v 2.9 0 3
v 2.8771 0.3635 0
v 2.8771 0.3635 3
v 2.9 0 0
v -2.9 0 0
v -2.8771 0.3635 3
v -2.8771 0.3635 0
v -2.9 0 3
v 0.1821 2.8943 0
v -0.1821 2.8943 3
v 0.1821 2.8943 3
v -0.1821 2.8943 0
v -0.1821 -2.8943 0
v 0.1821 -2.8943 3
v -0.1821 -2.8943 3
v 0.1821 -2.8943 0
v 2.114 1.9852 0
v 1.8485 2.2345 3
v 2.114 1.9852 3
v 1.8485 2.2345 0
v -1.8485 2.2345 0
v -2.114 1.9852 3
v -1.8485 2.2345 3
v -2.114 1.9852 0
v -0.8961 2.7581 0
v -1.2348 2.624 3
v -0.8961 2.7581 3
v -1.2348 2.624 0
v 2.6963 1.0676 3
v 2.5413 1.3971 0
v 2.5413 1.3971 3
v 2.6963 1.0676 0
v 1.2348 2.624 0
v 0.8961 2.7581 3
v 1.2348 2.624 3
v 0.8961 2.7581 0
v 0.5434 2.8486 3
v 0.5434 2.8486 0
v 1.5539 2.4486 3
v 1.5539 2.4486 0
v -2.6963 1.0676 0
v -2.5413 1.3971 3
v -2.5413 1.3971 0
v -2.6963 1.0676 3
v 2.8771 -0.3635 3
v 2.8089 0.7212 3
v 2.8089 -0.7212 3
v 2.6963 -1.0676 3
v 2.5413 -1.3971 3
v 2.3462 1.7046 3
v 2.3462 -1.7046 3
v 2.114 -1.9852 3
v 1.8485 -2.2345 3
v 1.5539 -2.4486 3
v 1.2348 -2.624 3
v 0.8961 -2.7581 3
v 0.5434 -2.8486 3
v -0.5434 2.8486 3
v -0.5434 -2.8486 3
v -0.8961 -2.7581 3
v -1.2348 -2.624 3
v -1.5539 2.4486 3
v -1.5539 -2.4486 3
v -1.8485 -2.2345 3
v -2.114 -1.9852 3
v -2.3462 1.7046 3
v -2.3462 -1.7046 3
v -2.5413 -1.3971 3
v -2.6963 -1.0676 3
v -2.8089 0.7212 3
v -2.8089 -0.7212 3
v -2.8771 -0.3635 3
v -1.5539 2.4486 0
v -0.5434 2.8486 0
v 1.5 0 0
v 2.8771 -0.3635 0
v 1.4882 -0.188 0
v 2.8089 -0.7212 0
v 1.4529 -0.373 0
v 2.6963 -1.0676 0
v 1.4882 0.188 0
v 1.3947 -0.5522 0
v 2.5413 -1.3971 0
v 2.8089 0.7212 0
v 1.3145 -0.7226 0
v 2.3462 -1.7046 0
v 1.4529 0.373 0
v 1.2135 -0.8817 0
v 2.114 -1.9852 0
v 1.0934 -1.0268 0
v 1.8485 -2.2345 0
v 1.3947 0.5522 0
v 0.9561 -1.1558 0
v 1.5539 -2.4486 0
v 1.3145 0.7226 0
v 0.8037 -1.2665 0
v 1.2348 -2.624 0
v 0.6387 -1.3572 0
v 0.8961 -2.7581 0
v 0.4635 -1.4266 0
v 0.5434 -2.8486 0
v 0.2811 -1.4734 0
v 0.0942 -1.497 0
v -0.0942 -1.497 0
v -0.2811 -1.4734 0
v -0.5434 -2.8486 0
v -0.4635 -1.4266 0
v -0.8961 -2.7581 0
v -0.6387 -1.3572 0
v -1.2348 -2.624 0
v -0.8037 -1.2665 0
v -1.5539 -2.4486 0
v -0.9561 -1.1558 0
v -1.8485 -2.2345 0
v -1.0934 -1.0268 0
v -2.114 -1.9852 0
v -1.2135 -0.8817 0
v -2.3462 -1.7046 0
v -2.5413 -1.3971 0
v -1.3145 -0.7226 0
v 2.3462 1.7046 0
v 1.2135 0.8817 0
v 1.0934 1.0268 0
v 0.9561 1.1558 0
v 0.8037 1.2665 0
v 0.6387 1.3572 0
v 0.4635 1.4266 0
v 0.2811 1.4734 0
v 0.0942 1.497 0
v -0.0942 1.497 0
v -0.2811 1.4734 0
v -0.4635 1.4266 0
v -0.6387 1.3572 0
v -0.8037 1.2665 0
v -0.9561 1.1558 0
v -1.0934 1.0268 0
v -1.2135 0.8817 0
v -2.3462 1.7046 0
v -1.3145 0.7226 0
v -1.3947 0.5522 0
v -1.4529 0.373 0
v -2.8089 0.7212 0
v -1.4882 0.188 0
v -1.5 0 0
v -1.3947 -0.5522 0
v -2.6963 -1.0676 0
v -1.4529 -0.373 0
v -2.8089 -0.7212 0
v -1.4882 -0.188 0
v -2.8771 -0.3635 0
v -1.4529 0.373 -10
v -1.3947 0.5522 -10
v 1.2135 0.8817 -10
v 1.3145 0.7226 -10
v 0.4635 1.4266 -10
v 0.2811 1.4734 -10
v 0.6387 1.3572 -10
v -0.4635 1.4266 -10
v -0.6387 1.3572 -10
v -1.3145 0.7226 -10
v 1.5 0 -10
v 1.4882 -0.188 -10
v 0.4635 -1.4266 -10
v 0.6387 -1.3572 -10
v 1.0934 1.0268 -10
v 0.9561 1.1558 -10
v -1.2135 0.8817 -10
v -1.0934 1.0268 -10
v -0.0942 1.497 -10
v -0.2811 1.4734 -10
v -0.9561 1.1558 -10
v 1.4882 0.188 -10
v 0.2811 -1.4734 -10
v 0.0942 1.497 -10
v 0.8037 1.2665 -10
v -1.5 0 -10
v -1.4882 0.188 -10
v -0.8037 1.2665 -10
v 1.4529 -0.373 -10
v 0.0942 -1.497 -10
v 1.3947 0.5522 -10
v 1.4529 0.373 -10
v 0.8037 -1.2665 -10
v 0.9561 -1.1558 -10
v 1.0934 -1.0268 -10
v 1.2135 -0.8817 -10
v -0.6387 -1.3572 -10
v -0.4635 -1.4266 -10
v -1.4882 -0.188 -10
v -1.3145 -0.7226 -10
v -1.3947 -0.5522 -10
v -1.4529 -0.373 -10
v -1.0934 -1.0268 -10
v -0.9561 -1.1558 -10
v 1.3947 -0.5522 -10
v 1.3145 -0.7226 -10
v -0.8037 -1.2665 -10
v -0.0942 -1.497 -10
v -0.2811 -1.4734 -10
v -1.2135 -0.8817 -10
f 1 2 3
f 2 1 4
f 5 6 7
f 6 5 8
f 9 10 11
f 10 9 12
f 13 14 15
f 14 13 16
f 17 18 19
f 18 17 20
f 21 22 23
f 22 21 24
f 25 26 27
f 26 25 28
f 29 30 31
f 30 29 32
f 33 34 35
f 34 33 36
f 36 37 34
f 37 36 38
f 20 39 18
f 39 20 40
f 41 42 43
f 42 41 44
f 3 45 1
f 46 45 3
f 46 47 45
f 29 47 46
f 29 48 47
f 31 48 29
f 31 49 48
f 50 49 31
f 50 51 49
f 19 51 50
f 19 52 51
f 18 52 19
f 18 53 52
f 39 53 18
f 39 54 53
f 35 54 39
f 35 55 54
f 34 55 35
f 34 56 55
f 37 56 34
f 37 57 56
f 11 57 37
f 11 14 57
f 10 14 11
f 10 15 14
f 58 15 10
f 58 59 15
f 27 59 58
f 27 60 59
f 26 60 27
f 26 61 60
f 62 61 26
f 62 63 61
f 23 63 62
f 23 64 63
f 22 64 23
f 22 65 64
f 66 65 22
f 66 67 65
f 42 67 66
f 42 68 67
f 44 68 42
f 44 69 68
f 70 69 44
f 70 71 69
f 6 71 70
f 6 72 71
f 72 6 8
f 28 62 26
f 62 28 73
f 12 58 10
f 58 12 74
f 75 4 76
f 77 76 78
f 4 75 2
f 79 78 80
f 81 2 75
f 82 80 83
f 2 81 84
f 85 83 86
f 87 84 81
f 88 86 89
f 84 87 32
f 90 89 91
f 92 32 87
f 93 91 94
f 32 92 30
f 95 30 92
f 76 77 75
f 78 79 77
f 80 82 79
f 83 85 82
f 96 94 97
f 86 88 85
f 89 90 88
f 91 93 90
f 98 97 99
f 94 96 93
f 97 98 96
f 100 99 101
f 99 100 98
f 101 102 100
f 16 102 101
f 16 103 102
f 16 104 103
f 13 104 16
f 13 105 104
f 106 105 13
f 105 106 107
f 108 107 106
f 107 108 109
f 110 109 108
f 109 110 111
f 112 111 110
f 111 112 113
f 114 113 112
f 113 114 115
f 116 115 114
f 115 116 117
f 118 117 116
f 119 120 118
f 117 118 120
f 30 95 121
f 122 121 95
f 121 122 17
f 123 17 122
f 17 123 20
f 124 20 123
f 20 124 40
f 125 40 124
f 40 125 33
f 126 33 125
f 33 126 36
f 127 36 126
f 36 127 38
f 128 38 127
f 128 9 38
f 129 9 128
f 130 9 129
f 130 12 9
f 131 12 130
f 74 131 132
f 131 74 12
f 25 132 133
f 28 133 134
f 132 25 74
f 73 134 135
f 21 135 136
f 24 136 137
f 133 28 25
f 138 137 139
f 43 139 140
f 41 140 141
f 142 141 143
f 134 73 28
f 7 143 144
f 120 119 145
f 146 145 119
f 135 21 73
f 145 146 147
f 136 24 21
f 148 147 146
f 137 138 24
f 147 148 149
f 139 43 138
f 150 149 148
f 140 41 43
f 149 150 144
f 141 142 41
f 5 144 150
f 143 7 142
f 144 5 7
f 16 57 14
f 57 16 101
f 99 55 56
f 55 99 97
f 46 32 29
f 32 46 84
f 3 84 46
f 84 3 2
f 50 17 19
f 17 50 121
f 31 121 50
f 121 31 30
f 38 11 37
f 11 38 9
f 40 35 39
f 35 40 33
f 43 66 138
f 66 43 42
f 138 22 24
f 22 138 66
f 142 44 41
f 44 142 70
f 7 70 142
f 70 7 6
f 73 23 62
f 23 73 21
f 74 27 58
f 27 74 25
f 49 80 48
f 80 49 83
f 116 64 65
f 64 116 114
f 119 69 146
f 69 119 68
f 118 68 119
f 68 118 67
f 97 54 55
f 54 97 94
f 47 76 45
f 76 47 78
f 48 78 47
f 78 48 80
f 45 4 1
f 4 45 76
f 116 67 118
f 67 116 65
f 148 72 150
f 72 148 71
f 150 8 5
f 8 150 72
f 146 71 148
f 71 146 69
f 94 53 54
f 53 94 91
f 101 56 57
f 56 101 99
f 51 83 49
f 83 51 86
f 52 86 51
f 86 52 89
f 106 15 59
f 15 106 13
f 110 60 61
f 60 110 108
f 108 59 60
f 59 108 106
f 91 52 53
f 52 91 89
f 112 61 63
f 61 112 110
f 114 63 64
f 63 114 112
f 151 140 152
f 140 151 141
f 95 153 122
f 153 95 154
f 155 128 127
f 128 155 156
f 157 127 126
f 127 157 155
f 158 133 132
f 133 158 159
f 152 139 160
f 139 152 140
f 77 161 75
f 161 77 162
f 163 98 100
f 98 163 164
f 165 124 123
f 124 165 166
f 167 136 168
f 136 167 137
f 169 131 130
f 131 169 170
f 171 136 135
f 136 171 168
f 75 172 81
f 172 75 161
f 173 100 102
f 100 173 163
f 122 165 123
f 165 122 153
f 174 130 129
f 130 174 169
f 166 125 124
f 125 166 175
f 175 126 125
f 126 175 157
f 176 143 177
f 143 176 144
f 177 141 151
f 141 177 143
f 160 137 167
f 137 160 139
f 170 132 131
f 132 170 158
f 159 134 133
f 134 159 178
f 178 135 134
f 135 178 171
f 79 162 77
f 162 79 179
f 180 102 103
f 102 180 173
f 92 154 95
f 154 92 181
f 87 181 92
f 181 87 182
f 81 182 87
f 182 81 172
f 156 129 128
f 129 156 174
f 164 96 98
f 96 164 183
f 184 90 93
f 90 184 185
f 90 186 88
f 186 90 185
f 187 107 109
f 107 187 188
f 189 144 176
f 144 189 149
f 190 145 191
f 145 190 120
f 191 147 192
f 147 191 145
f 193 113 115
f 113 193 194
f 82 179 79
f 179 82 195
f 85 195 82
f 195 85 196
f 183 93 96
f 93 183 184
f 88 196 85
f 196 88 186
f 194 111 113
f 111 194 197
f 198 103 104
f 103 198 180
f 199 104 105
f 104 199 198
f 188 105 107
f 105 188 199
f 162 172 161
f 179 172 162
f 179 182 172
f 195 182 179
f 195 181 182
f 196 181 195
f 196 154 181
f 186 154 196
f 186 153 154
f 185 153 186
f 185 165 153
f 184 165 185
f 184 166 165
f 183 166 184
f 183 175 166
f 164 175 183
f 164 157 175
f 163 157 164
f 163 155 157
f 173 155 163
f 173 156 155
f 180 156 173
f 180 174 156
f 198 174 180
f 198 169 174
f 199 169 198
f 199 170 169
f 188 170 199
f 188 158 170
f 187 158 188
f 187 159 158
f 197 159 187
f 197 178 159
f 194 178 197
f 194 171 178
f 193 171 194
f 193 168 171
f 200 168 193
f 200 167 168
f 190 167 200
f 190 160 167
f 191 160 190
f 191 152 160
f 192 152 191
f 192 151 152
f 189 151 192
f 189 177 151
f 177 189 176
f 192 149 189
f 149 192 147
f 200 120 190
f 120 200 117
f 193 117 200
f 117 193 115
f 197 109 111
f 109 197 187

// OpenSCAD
$fn = 50;


difference() {
	union() {
		translate(v = [0, 0, 0]) {
			rotate(a = [0, 0, 0]) {
				cylinder(h = 3, r = 2.9000000000);
			}
		}
		translate(v = [0, 0, -10]) {
			rotate(a = [0, 0, 0]) {
				cylinder(h = 10, r = 1.5000000000);
			}
		}
	}
	union();
}
